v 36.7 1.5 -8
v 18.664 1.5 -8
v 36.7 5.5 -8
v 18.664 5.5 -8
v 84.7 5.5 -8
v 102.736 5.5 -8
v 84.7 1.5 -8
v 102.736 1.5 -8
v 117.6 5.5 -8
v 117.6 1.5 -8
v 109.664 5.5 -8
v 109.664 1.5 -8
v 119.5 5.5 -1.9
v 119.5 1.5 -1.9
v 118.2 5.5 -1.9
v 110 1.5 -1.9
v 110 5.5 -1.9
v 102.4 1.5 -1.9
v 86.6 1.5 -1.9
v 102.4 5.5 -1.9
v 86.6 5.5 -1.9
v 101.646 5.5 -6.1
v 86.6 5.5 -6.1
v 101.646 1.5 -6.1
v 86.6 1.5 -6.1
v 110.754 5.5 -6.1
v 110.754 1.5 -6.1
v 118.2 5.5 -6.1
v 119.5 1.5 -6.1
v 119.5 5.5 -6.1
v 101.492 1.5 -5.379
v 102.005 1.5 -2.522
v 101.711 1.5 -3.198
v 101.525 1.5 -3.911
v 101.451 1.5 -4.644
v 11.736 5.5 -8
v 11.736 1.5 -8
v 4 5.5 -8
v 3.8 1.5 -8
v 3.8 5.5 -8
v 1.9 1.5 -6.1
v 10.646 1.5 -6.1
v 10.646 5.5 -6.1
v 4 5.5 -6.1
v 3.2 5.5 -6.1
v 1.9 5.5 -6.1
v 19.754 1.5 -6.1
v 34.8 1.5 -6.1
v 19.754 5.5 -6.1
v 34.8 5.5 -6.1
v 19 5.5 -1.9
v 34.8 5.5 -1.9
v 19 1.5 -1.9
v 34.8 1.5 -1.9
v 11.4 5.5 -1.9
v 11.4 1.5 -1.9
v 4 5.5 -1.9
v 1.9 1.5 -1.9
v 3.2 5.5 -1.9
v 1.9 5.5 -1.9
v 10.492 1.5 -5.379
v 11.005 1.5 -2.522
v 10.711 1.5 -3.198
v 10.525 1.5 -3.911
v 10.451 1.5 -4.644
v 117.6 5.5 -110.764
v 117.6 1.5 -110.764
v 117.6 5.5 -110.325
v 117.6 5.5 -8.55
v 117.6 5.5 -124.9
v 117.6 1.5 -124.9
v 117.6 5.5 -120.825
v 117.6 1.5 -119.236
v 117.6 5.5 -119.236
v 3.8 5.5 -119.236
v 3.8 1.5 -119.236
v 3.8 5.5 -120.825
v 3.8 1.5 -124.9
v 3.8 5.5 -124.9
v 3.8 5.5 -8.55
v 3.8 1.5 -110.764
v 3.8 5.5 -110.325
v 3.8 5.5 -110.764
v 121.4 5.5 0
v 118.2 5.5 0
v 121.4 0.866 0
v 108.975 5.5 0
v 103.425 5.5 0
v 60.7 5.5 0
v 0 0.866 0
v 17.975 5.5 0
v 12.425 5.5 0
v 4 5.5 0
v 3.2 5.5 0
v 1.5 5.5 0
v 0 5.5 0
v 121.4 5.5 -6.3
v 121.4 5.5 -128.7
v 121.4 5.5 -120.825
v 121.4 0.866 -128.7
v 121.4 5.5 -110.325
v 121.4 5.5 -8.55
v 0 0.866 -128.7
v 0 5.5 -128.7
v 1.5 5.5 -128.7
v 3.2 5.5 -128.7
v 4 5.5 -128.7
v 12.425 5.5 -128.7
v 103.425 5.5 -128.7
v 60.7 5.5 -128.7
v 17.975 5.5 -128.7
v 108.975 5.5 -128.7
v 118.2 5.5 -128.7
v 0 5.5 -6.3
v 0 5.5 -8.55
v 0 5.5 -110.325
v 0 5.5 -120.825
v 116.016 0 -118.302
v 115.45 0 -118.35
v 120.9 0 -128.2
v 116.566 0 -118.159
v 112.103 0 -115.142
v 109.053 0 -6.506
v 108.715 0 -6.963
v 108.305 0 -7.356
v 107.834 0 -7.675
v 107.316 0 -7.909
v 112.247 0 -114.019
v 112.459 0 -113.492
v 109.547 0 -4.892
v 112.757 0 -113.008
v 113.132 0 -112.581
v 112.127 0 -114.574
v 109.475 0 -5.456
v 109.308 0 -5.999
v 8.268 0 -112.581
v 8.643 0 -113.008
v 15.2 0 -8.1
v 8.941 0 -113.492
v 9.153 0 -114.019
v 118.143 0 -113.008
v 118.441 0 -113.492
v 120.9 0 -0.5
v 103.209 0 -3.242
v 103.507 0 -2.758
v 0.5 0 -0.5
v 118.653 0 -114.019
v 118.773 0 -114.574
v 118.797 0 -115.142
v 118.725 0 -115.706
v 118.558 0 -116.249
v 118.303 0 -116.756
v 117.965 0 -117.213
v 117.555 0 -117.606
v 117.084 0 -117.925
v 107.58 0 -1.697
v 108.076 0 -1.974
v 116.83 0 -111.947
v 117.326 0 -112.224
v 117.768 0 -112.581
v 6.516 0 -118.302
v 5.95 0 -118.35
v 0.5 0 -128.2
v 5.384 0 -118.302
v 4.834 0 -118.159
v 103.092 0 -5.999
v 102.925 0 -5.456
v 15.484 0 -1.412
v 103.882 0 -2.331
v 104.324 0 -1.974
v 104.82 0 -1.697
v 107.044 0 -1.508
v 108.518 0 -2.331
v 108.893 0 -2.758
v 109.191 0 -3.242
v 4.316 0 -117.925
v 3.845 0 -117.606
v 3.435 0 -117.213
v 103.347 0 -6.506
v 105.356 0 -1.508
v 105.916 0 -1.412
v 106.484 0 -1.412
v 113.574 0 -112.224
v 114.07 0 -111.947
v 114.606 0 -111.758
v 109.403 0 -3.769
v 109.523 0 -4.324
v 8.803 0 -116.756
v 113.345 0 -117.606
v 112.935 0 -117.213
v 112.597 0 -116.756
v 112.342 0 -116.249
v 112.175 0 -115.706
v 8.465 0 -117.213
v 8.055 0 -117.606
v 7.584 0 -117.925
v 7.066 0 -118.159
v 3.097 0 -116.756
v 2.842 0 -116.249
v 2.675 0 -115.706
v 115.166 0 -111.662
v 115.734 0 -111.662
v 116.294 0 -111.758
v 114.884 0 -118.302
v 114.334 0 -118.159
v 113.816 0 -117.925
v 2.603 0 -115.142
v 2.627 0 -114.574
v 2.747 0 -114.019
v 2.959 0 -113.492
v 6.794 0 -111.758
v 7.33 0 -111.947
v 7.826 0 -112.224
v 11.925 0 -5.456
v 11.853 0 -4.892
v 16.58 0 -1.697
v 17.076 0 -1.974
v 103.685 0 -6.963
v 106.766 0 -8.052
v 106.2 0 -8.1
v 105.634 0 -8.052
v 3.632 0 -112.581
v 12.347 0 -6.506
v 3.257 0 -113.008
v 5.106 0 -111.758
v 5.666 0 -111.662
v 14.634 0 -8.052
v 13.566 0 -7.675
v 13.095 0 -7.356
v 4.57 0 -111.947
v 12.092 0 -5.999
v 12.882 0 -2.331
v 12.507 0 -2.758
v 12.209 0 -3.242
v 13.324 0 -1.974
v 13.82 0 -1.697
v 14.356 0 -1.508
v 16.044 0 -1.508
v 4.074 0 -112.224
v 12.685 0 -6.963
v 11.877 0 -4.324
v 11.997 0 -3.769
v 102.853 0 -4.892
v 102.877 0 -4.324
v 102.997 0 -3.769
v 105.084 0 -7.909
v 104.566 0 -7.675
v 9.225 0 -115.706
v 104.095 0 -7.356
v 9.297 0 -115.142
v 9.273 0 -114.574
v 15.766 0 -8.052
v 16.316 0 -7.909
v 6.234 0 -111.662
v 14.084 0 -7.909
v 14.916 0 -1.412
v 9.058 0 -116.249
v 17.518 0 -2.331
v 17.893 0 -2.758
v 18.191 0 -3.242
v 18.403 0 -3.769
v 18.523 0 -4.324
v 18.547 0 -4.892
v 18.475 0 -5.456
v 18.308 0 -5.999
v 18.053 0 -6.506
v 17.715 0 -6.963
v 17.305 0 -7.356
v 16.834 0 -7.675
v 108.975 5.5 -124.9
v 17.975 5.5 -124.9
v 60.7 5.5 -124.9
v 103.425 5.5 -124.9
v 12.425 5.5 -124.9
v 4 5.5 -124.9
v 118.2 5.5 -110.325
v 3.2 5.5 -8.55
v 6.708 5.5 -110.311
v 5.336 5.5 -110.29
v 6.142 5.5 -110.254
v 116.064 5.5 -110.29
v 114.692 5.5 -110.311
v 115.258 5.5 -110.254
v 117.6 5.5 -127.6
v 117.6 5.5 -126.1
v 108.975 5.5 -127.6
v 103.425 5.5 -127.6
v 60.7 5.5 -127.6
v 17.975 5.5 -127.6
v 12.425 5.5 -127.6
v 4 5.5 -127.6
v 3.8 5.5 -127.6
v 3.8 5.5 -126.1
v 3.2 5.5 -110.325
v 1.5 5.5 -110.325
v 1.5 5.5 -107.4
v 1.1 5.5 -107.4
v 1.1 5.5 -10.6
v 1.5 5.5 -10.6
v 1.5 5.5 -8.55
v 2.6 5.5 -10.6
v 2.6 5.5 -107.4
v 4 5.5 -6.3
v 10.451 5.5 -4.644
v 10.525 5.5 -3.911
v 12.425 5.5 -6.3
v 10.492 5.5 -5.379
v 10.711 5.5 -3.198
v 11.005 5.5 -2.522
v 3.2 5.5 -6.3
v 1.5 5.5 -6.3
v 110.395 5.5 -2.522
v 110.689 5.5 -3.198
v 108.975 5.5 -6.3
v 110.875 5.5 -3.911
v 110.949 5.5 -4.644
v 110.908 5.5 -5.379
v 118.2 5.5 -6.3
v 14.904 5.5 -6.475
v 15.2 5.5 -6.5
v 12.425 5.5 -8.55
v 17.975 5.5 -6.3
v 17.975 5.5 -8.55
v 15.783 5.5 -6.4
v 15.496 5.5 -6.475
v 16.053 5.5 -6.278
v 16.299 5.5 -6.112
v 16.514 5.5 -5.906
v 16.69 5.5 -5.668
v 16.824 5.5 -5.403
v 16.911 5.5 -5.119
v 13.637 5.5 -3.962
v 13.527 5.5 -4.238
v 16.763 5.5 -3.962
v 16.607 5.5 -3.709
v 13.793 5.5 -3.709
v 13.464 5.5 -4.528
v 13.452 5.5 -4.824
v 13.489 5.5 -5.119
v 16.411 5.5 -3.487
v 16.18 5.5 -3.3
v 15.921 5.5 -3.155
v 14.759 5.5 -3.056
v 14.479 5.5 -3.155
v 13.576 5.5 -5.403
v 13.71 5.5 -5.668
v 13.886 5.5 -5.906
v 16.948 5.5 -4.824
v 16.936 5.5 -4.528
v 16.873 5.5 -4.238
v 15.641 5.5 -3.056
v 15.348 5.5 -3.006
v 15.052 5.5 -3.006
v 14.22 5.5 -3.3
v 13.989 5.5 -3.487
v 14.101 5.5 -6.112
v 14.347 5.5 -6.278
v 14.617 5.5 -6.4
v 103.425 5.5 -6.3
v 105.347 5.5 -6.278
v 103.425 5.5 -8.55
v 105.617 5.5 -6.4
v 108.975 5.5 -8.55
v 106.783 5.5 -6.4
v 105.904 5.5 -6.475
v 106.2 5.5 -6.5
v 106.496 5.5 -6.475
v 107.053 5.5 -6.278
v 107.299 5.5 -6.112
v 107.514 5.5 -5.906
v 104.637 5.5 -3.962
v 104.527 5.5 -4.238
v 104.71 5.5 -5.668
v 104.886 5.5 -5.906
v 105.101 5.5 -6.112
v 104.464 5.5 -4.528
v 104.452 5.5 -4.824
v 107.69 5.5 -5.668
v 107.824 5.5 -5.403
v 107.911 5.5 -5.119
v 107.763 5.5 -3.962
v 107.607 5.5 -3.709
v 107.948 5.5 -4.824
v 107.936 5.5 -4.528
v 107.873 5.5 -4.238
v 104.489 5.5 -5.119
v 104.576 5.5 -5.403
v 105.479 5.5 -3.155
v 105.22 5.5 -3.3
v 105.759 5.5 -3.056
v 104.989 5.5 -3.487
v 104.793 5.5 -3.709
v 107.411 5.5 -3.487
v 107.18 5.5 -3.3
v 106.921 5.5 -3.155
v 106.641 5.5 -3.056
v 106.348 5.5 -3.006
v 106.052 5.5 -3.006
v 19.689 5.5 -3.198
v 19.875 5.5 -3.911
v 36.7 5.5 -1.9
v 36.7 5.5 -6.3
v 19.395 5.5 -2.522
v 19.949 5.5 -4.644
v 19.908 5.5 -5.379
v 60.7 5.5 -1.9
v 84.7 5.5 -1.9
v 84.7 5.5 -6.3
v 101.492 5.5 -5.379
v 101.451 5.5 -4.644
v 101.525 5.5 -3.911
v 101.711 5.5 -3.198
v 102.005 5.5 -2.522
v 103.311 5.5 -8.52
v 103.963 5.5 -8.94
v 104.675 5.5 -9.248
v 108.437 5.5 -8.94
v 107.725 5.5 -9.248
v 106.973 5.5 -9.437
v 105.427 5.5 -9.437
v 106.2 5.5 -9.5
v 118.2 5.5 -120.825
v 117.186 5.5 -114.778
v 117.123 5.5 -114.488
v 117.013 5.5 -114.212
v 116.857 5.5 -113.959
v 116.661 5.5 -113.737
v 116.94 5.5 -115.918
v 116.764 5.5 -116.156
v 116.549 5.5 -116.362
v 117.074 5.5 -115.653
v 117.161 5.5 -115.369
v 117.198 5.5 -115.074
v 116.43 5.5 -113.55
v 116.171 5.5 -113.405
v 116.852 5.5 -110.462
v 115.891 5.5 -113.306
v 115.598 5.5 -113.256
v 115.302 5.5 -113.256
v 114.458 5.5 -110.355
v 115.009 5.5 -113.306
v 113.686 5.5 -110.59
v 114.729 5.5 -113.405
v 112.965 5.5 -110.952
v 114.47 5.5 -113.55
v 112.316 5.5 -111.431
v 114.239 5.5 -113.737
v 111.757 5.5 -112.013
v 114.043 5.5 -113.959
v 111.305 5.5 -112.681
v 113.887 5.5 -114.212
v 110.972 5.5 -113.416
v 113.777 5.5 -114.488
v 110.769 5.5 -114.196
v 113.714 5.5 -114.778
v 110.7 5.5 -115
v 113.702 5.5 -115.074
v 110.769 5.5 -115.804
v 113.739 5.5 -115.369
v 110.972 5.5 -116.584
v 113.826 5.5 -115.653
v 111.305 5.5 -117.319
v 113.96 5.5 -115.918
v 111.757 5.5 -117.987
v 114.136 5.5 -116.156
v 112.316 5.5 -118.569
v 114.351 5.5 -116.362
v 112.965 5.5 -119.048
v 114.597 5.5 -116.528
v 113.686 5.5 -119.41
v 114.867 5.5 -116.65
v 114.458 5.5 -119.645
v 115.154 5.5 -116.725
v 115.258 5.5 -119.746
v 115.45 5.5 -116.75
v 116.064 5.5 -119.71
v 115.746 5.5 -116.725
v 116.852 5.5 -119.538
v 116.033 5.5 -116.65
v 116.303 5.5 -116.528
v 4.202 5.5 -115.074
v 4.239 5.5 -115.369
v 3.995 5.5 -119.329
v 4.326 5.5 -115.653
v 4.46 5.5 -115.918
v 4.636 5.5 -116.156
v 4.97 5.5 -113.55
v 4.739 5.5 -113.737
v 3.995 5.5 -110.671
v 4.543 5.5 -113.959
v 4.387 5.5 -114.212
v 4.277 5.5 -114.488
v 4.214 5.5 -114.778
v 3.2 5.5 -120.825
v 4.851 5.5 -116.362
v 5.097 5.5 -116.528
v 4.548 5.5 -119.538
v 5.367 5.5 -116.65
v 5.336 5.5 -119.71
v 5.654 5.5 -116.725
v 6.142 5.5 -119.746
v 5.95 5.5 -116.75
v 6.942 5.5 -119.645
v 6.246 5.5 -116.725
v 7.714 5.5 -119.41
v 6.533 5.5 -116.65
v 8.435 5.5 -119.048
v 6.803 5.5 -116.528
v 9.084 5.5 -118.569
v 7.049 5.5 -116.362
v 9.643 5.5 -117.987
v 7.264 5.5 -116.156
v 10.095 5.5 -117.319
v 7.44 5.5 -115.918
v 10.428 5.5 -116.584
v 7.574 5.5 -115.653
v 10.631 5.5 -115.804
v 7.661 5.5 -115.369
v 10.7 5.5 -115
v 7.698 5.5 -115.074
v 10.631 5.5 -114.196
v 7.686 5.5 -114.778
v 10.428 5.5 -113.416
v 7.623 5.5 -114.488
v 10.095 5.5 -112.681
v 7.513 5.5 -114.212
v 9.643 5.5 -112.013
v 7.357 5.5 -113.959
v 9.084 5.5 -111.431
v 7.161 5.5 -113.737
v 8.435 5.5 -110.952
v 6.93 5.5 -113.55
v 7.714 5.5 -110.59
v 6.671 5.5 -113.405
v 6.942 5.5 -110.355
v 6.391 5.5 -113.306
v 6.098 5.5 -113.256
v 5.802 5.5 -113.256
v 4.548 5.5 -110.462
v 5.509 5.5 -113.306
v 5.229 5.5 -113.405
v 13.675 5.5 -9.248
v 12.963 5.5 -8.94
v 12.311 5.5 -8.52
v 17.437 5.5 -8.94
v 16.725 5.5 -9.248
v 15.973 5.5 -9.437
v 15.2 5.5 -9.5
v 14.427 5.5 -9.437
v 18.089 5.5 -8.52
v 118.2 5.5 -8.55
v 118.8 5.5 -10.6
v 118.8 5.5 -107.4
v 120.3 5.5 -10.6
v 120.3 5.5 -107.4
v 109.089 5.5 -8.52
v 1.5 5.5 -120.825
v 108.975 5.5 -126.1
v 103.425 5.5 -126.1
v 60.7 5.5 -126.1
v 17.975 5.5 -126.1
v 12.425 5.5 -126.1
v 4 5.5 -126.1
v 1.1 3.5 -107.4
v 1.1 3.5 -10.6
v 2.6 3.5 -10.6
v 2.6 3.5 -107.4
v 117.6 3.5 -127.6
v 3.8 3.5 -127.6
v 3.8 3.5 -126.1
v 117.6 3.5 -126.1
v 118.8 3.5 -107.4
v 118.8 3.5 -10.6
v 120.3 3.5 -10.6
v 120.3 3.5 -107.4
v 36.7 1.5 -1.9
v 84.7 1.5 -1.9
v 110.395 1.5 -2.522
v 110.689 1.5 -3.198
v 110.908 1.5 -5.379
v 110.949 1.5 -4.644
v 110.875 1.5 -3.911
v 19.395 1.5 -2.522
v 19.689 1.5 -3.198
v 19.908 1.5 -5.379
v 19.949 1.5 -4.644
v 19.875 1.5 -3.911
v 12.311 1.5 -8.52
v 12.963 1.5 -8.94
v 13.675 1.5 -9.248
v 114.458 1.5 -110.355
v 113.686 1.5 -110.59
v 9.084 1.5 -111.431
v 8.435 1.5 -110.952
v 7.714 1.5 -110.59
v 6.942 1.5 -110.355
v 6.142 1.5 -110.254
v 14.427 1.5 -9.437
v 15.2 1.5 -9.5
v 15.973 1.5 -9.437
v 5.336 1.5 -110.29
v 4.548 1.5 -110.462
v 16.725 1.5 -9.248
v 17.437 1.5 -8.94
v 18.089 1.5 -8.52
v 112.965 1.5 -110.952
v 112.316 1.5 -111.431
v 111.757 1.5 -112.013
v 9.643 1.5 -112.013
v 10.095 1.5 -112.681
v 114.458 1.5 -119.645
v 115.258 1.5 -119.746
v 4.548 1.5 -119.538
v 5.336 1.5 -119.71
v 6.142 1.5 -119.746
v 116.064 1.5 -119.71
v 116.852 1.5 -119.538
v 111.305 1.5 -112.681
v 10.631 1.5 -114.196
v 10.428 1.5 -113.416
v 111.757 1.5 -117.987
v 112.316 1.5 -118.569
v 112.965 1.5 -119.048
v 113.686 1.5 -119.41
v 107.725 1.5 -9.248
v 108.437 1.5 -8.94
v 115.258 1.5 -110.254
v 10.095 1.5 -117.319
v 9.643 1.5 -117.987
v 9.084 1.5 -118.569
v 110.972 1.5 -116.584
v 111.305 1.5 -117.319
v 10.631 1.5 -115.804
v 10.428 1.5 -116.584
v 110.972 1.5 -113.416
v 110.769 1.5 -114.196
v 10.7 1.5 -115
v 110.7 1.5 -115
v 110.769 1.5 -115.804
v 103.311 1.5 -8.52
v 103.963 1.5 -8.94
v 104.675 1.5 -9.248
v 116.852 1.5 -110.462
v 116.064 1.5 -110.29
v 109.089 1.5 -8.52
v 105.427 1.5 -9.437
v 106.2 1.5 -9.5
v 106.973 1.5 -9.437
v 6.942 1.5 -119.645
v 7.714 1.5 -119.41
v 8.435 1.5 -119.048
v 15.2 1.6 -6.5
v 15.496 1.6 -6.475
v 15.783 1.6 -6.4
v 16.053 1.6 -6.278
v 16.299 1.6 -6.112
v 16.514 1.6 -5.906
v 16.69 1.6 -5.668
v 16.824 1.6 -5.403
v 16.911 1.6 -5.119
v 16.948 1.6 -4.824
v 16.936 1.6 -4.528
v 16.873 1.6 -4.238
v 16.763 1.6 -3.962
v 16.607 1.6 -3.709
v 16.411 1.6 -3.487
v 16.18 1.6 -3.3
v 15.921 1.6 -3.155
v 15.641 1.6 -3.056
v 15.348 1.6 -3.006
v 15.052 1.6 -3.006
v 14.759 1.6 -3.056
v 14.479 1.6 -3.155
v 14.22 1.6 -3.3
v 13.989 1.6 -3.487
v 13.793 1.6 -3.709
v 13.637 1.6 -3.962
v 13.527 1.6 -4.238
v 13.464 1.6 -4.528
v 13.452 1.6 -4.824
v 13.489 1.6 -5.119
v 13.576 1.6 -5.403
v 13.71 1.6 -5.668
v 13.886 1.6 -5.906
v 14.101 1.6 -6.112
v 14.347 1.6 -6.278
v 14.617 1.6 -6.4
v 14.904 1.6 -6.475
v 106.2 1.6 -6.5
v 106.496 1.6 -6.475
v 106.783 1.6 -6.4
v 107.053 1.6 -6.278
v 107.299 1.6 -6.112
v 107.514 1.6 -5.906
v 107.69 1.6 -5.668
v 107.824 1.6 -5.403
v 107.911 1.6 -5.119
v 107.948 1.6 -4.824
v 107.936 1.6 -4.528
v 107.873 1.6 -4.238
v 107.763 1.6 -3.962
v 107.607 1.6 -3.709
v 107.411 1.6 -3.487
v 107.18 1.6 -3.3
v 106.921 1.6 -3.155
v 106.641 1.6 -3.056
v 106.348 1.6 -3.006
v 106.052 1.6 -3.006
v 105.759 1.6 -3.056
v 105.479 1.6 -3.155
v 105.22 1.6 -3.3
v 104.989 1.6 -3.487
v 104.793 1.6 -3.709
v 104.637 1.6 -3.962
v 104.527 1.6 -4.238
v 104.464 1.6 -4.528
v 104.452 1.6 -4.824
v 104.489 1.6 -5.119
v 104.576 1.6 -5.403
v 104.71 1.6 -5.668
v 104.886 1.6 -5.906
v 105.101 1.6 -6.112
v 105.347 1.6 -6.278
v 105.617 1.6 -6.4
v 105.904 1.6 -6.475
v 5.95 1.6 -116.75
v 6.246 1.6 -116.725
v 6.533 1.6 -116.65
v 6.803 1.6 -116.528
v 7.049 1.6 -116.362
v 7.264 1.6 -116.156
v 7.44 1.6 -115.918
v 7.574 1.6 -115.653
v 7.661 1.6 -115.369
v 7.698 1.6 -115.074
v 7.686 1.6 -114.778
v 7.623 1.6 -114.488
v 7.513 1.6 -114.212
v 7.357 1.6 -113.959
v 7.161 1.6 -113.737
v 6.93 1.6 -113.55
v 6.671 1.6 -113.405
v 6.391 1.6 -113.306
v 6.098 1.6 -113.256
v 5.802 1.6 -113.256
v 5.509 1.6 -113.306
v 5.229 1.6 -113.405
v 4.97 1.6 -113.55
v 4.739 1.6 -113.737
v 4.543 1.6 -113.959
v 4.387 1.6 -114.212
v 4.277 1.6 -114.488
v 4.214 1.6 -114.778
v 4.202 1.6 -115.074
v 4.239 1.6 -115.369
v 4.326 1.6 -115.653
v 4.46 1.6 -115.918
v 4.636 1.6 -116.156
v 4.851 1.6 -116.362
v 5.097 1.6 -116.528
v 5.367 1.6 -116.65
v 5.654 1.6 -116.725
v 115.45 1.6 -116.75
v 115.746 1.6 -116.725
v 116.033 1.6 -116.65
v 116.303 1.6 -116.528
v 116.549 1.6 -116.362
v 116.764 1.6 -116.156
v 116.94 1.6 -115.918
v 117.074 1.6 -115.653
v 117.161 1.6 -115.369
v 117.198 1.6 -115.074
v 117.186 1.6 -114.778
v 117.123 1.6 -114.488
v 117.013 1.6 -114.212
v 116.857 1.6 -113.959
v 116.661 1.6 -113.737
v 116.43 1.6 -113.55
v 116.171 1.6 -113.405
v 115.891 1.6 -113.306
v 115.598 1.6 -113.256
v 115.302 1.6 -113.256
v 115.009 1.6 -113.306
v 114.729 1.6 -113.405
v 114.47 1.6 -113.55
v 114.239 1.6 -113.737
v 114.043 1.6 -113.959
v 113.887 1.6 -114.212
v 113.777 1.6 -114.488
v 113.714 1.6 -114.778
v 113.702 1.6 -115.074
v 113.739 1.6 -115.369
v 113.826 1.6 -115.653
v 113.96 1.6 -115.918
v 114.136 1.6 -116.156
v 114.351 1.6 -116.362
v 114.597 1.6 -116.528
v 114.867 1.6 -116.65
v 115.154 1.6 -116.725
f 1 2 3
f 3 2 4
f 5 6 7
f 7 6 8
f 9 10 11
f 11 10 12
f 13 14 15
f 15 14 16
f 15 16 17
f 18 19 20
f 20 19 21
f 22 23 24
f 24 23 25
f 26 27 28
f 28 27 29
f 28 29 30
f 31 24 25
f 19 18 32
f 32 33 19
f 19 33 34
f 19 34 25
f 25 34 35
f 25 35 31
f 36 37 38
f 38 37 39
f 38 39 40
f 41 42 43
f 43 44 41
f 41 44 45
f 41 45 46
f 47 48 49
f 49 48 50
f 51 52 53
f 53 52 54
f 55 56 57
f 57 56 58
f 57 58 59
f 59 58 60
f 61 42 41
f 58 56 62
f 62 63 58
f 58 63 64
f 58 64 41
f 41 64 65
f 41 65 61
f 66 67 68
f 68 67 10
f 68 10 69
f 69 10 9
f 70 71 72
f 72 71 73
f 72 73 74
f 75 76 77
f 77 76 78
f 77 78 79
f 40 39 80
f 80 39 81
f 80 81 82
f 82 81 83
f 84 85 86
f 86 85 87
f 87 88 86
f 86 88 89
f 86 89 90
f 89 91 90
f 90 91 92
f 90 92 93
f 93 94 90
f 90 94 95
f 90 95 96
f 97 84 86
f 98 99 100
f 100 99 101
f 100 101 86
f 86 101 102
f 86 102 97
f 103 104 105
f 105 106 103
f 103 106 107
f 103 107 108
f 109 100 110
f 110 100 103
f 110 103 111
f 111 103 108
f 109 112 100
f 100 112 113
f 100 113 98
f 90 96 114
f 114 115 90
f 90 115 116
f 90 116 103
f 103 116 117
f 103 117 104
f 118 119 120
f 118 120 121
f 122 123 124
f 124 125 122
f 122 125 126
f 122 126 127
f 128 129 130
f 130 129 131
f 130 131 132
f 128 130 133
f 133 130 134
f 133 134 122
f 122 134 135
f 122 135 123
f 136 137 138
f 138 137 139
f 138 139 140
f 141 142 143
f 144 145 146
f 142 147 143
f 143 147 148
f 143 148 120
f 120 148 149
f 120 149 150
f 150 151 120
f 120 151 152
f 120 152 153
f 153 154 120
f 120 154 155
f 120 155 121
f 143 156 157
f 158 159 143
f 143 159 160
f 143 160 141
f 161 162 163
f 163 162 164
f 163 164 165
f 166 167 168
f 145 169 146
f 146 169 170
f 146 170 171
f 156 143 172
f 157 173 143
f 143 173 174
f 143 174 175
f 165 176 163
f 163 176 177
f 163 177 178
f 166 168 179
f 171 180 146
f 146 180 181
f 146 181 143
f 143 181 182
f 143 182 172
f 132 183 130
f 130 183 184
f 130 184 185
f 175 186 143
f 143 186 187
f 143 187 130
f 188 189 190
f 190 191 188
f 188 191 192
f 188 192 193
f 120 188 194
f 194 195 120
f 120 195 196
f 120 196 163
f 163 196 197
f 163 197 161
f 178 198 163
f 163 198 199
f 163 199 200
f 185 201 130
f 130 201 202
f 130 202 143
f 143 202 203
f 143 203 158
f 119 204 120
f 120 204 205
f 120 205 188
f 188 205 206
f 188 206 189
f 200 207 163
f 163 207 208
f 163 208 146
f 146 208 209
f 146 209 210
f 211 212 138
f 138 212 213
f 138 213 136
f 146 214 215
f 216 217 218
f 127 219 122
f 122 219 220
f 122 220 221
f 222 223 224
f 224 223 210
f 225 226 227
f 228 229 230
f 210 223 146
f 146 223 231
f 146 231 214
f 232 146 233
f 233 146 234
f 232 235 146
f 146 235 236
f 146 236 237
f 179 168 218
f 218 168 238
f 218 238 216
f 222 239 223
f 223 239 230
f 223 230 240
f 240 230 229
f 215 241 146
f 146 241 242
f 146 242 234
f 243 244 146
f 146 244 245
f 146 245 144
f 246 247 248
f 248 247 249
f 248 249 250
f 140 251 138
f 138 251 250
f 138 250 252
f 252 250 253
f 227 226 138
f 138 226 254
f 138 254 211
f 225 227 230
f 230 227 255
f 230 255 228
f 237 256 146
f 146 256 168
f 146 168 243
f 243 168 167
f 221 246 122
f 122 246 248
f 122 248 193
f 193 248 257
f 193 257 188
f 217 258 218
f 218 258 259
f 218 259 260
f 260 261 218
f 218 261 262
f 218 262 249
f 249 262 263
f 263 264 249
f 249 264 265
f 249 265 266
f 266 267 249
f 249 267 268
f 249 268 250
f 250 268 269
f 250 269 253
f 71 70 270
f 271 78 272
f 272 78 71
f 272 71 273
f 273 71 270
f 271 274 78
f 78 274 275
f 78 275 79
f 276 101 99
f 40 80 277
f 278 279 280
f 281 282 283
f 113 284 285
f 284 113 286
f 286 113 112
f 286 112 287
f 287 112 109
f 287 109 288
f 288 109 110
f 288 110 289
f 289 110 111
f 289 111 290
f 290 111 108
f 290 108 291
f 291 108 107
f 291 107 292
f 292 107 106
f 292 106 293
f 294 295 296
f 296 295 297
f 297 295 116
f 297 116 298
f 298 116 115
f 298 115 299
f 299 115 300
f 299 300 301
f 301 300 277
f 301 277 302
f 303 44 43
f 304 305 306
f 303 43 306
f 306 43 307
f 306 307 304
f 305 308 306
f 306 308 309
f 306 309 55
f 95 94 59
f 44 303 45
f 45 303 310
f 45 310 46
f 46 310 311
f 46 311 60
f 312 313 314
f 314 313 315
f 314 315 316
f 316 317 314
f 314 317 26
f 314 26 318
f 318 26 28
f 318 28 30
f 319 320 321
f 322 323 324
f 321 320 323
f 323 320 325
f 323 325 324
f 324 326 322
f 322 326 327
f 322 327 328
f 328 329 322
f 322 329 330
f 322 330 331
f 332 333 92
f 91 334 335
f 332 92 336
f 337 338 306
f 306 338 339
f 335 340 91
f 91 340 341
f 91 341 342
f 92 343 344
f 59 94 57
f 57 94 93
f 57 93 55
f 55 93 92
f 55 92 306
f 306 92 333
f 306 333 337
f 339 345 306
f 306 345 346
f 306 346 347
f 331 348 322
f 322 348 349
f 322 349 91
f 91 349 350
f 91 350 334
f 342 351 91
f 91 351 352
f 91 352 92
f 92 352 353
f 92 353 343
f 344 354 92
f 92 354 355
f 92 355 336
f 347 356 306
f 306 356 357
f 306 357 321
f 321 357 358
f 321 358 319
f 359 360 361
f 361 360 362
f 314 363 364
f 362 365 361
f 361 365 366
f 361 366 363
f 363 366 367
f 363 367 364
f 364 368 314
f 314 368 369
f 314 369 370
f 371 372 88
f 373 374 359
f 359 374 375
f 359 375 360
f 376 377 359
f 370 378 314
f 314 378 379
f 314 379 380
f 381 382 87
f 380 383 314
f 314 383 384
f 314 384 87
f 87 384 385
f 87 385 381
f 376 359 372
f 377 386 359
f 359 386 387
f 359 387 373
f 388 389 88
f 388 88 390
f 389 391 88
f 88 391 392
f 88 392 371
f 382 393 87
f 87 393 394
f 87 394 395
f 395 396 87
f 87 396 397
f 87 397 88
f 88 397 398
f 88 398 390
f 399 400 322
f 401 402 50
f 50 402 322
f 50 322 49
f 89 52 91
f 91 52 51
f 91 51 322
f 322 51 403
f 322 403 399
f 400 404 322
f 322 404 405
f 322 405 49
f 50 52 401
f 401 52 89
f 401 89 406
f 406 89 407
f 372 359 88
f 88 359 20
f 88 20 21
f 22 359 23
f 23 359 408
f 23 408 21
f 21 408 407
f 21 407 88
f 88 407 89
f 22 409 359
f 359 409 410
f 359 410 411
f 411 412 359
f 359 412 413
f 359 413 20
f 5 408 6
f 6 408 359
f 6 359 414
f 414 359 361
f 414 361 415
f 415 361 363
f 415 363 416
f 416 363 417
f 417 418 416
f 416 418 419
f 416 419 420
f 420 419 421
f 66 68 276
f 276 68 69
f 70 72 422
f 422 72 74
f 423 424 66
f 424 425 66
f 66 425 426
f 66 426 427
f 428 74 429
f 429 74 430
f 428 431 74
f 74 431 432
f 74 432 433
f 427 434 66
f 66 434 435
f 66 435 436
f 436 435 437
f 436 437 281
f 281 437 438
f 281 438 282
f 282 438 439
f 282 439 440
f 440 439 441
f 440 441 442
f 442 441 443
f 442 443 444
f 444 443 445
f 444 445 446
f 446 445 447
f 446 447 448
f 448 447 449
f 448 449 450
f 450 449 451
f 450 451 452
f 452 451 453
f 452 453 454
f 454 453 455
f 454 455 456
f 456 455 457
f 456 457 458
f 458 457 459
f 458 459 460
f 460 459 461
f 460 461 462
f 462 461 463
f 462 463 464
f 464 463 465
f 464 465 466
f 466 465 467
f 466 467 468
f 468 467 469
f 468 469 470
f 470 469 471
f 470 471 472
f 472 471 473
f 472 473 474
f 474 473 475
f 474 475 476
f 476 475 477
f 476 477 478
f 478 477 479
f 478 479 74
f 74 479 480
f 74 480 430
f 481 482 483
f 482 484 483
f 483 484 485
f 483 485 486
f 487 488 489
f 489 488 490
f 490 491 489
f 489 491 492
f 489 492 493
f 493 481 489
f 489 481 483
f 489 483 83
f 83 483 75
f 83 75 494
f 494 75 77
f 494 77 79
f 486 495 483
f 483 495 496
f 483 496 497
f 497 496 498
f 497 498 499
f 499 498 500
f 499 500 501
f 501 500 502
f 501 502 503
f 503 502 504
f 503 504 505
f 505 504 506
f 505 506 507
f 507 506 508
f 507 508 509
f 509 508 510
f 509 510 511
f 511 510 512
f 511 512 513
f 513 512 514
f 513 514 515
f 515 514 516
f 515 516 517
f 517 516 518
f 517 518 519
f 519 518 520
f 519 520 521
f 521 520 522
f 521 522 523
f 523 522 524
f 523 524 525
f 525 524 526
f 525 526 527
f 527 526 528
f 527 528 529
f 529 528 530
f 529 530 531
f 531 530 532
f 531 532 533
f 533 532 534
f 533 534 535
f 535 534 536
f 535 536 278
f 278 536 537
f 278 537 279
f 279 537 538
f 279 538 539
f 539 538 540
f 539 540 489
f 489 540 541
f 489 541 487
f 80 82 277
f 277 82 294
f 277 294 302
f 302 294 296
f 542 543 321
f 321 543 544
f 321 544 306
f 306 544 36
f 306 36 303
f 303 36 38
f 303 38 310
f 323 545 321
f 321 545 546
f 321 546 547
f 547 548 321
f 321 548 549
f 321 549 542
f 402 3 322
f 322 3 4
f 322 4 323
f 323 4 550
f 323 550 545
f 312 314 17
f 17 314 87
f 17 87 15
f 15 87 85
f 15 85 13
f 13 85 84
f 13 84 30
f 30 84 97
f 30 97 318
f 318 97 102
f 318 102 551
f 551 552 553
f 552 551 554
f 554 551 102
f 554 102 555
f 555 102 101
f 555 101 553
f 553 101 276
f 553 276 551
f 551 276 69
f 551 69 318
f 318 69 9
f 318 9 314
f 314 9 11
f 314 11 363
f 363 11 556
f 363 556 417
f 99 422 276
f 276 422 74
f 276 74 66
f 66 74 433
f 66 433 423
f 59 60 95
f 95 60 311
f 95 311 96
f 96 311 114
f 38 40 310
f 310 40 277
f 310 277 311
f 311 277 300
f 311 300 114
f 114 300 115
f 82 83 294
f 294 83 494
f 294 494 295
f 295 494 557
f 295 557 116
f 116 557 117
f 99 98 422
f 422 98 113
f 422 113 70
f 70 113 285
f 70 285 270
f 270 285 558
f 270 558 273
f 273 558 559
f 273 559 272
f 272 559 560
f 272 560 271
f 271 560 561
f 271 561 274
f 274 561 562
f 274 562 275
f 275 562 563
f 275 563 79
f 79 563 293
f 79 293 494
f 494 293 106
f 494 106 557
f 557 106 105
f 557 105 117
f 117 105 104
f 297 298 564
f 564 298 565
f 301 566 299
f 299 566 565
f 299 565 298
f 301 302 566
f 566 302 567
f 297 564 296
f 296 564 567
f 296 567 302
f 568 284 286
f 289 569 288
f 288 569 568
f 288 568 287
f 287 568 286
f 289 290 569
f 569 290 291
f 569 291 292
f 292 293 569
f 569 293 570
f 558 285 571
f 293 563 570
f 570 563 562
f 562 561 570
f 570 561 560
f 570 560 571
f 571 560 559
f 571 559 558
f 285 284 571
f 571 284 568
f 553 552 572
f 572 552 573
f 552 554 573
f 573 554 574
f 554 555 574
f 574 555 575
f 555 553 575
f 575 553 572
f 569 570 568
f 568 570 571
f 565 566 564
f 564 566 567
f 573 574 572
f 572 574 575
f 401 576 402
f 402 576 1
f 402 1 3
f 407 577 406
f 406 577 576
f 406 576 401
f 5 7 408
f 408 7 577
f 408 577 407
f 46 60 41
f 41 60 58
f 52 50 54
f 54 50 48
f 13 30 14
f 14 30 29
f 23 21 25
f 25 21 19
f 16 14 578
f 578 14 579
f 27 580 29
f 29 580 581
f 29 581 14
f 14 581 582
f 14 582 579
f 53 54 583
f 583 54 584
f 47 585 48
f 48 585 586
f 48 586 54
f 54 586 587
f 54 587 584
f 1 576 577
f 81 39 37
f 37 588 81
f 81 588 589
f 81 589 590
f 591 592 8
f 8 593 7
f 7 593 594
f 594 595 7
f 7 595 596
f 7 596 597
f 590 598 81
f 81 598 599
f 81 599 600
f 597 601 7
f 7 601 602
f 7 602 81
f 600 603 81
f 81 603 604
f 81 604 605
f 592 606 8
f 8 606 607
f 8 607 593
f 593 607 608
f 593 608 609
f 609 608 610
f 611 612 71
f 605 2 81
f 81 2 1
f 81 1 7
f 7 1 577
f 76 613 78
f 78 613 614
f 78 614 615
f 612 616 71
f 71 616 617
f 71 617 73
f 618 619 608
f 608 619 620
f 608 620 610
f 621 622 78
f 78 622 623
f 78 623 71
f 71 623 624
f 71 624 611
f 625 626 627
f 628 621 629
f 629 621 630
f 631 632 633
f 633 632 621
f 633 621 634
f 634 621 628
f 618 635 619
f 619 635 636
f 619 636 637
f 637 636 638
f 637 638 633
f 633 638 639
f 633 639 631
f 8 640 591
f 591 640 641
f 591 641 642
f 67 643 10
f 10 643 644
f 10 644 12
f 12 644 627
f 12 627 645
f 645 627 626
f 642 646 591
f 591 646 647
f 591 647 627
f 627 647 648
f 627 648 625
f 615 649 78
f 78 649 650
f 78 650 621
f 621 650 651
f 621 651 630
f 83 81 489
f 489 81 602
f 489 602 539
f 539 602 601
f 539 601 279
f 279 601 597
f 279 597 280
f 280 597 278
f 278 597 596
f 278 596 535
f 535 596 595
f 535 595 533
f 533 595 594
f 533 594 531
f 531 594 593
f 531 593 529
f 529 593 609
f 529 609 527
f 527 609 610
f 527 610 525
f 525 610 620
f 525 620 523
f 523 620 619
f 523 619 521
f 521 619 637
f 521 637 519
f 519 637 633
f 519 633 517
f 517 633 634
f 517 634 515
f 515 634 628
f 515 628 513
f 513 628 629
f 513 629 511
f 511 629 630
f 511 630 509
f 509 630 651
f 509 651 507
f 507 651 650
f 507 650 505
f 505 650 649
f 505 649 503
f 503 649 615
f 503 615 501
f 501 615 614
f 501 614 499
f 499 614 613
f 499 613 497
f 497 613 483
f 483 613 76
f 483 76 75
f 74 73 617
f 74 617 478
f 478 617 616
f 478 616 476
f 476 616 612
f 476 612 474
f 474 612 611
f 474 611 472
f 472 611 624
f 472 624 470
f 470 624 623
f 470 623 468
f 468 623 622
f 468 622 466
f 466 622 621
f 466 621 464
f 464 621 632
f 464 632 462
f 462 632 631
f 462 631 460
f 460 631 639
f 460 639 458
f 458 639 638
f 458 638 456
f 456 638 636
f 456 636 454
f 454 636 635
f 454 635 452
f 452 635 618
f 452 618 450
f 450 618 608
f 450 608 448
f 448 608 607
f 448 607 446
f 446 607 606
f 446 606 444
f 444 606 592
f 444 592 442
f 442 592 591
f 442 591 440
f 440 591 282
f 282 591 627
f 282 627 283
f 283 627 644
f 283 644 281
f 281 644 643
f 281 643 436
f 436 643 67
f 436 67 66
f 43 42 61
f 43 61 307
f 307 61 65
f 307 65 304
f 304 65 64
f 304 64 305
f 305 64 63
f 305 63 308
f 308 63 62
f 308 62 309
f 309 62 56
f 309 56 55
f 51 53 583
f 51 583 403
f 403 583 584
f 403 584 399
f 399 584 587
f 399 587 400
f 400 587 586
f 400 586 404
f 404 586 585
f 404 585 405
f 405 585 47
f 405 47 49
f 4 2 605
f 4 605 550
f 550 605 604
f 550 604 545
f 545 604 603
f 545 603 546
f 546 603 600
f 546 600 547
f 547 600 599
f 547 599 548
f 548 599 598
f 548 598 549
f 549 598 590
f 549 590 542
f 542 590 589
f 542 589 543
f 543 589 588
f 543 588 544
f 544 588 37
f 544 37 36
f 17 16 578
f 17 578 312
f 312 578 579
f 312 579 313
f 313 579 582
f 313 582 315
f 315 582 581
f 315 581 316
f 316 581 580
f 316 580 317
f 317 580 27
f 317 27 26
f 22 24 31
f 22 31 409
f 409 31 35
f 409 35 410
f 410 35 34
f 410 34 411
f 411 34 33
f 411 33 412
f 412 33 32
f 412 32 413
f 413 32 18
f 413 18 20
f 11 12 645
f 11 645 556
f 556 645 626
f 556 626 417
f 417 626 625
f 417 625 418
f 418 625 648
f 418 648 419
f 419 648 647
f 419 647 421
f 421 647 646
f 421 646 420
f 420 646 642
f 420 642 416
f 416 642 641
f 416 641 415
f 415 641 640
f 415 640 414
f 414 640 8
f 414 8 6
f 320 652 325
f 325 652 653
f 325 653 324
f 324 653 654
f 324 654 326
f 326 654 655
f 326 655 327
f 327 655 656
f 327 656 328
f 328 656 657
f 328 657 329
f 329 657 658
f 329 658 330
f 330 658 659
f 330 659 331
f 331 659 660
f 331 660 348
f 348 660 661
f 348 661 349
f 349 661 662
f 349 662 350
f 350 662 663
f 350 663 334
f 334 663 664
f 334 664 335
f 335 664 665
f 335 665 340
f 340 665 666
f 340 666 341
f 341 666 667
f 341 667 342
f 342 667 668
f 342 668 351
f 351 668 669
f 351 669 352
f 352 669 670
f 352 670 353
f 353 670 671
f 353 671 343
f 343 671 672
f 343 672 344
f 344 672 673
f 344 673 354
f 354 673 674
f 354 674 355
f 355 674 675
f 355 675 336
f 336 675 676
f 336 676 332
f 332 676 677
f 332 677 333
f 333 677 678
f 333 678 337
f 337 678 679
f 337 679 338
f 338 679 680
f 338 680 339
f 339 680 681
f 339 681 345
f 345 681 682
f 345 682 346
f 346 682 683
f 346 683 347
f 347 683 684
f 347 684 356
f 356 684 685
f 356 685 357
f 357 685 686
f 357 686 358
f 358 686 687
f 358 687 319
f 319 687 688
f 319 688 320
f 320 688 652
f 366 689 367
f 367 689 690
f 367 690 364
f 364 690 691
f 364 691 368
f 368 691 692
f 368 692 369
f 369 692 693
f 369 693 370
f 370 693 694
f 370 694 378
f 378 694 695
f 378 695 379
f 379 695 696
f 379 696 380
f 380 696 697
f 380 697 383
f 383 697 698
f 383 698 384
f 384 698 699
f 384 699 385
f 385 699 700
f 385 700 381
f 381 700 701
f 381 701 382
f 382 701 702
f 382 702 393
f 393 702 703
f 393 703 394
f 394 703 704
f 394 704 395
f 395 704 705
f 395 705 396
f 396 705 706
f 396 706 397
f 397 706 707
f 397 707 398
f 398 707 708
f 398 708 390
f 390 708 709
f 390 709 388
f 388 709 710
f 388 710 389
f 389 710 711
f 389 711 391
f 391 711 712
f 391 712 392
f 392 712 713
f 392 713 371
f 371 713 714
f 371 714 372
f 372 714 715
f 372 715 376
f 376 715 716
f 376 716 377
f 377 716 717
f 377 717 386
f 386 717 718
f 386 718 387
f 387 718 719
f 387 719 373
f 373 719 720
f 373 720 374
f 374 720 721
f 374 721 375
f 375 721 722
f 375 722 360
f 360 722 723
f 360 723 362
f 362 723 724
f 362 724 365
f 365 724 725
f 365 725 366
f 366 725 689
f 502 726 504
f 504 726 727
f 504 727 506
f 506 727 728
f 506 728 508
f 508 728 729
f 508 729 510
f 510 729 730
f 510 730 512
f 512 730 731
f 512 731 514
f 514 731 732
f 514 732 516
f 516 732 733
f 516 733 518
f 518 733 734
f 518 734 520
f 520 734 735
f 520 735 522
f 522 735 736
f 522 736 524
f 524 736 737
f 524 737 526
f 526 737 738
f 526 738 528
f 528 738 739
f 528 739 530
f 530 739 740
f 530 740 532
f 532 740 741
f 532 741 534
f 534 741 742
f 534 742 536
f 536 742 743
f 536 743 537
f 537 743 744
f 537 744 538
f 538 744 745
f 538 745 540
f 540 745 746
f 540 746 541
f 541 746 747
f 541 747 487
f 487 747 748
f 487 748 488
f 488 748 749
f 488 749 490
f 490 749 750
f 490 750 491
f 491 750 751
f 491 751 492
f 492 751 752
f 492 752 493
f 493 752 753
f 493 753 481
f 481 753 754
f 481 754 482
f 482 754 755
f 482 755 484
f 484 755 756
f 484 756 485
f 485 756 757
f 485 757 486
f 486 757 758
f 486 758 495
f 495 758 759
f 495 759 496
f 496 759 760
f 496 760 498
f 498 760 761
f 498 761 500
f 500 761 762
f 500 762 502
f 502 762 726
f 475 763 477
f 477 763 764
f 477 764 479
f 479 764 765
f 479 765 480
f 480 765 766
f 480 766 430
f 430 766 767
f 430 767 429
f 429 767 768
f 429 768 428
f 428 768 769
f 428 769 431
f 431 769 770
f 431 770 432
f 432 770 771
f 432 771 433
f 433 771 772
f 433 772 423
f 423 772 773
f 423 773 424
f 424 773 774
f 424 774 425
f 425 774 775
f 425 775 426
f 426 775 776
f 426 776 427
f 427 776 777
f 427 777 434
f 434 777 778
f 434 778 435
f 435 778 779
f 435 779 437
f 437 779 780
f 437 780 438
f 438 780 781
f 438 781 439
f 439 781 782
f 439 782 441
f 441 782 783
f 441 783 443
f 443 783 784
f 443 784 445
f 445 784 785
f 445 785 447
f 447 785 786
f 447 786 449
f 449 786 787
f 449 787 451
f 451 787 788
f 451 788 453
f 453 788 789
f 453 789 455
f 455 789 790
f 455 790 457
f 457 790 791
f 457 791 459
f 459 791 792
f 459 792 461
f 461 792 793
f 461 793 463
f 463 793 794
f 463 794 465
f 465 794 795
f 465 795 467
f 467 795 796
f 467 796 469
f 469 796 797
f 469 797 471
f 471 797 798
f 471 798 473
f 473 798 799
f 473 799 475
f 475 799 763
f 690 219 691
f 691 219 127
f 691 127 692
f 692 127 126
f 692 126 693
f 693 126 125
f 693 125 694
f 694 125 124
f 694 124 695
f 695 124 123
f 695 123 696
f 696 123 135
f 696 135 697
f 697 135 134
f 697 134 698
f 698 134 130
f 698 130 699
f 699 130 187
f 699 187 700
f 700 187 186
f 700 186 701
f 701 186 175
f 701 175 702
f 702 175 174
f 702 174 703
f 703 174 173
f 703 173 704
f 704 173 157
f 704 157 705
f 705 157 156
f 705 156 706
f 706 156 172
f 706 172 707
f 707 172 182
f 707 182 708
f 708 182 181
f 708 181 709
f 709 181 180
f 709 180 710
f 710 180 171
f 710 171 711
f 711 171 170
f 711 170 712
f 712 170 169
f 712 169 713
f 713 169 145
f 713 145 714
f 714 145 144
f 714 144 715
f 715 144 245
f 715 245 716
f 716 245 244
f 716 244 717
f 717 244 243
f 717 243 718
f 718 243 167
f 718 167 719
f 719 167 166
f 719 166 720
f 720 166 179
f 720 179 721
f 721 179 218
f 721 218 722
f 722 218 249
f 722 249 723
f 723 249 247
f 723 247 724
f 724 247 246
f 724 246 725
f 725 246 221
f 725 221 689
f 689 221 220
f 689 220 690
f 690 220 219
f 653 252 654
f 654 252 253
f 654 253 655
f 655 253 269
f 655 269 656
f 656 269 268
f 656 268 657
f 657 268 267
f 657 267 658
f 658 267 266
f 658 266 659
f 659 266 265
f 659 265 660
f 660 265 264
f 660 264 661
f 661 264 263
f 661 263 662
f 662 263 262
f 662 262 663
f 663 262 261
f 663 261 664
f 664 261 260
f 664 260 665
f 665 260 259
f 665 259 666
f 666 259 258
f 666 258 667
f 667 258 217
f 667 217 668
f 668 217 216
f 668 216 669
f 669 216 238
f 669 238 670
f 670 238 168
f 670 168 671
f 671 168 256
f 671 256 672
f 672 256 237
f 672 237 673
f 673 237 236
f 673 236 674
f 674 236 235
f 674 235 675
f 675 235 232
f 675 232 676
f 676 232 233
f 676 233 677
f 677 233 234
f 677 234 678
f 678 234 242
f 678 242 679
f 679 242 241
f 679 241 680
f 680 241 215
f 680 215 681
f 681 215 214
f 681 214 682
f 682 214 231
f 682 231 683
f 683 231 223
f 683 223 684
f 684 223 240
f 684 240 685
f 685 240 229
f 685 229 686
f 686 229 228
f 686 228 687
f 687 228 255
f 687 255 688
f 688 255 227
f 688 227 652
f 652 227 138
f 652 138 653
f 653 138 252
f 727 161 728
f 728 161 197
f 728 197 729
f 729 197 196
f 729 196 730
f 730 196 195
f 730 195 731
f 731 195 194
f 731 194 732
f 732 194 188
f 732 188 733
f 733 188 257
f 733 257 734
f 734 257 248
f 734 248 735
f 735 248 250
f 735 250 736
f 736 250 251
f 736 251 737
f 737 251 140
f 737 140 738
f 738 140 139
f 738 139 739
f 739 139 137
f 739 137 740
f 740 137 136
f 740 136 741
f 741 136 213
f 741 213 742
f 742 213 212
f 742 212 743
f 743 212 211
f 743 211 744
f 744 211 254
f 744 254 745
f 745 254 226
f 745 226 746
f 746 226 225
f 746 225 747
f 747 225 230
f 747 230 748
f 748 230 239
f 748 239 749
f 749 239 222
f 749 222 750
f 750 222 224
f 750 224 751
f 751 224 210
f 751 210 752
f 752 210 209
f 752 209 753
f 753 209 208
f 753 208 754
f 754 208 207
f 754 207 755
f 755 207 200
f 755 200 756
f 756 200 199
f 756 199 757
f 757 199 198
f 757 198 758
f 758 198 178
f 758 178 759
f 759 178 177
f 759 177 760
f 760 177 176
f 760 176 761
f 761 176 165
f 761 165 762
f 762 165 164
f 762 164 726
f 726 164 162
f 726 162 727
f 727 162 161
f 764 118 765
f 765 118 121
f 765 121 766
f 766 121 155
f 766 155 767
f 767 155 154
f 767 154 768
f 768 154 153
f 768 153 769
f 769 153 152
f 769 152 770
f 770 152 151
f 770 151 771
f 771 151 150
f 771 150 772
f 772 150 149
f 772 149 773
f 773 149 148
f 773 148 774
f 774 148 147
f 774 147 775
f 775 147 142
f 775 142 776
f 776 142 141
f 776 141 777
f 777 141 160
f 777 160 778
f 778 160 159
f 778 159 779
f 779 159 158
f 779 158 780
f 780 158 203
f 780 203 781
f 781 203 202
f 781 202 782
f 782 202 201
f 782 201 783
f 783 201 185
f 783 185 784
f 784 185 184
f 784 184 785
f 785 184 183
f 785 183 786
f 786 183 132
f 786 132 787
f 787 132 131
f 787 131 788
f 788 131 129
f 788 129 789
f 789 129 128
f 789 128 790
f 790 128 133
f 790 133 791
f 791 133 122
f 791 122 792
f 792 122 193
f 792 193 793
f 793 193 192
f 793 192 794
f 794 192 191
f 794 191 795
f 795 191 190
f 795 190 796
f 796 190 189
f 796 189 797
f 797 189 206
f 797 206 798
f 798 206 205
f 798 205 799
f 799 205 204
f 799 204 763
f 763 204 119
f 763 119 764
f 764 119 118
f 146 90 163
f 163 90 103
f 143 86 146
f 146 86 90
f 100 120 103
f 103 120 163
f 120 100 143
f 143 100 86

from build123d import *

# Parameters (mm, degrees)
SKETCH_1_W          = 121.4
SKETCH_1_H          = 128.7
EXTRUDE_1_DEPTH     = 1.5
EXTRUDE_2_DEPTH     = 2
SKETCH_3_W          = 1.5
SKETCH_3_H          = 96.8
SKETCH_3_W_2        = 113.8
SKETCH_3_H_2        = 1.5
EXTRUDE_3_DEPTH     = 2
SKETCH_5_W          = 121.4
SKETCH_5_H          = 8
SKETCH_5_W_2        = 32.9
SKETCH_5_H_2        = 4.2
SKETCH_5_W_3        = 48
EXTRUDE_5_DEPTH     = 4
SKETCH_7_R          = 4.75
EXTRUDE_10_DEPTH    = 4
SKETCH_8_R          = 1.75
CUT_EXTRUDE_3_DEPTH = 5.5
CHAMFER_1_SIZE      = 1.6
SKETCH_10_W         = 48
SKETCH_10_H         = 6.1
CUT_EXTRUDE_4_DEPTH = 4
CHAMFER_2_SIZE      = 0.5
CHAMFER_2_SIZE2     = 0.866025404


with BuildPart() as part:
    # Эскиз1 → Бобышка-Вытянуть1 (new body)
    with BuildSketch(Plane(origin=(0, 0, 0), x_dir=(1, 0, 0), z_dir=(0, 1, 0))):
        with Locations((60.7, 64.35)):
            Rectangle(SKETCH_1_W, SKETCH_1_H)
    extrude(amount=EXTRUDE_1_DEPTH)

    # Эскиз2 → Бобышка-Вытянуть2 (add)
    with BuildSketch(Plane(origin=(0, 1.5, 0), x_dir=(1, 0, 0), z_dir=(0, 1, 0))):
        Polygon((0, 8), (0, 128.7), (121.4, 128.7), (121.4, 8), (117.6, 8), (117.6, 124.9), (3.8, 124.9), (3.8, 8), align=None)
    extrude(amount=EXTRUDE_2_DEPTH)

    # Эскиз3 → Бобышка-Вытянуть3 (add)
    with BuildSketch(Plane(origin=(0, 3.5, 0), x_dir=(1, 0, 0), z_dir=(0, 1, 0))):
        Polygon((0, 8), (3.8, 8), (3.8, 124.9), (117.6, 124.9), (117.6, 8), (121.4, 8), (121.4, 128.7), (0, 128.7), align=None)
        with Locations((1.85, 59)):
            Rectangle(SKETCH_3_W, SKETCH_3_H, mode=Mode.SUBTRACT)
        with Locations((60.7, 126.85)):
            Rectangle(SKETCH_3_W_2, SKETCH_3_H_2, mode=Mode.SUBTRACT)
        with Locations((119.55, 59)):
            Rectangle(SKETCH_3_W, SKETCH_3_H, mode=Mode.SUBTRACT)
    extrude(amount=EXTRUDE_3_DEPTH)

    # Эскиз5 → Бобышка-Вытянуть5 (add)
    with BuildSketch(Plane(origin=(0, 1.5, 0), x_dir=(1, 0, 0), z_dir=(0, 1, 0))):
        with Locations((60.7, 4)):
            Rectangle(SKETCH_5_W, SKETCH_5_H)
        with Locations((18.35, 4)):
            Rectangle(SKETCH_5_W_2, SKETCH_5_H_2, mode=Mode.SUBTRACT)
        with Locations((103.05, 4)):
            Rectangle(SKETCH_5_W_2, SKETCH_5_H_2, mode=Mode.SUBTRACT)
        with Locations((60.7, 4)):
            Rectangle(SKETCH_5_W_3, SKETCH_5_H_2, mode=Mode.SUBTRACT)
    extrude(amount=EXTRUDE_5_DEPTH)

    # Эскиз7 → Бобышка-Вытянуть10 (add)
    with BuildSketch(Plane(origin=(0, 1.5, 0), x_dir=(1, 0, 0), z_dir=(0, 1, 0))):
        with Locations((5.95, 115)):
            Circle(SKETCH_7_R)
        with Locations((115.45, 115)):
            Circle(SKETCH_7_R)
        with Locations((15.2, 4.75)):
            Circle(SKETCH_7_R)
        with Locations((106.2, 4.75)):
            Circle(SKETCH_7_R)
    extrude(amount=EXTRUDE_10_DEPTH)

    # Эскиз8 → Вырез-Вытянуть3 (cut)
    with BuildSketch(Plane.XZ):
        with Locations(Location((15.2, -4.75, 0), (0, 0, 270))):
            Circle(SKETCH_8_R)
        with Locations(Location((106.2, -4.75, 0), (0, 0, 270))):
            Circle(SKETCH_8_R)
        with Locations(Location((5.95, -115, 0), (0, 0, 270))):
            Circle(SKETCH_8_R)
        with Locations(Location((115.45, -115, 0), (0, 0, 270))):
            Circle(SKETCH_8_R)
    extrude(amount=-CUT_EXTRUDE_3_DEPTH, mode=Mode.SUBTRACT)

    # Фаска1
    chamfer_1_edges = [part.edges().sort_by_distance(p)[0] for p in [
        (115.45, 0, -113.25),
        (5.95, 0, -113.25),
        (106.2, 0, -3),
        (15.2, 0, -3),
    ]]
    chamfer(chamfer_1_edges, length=CHAMFER_1_SIZE)

    # Эскиз10 → Вырез-Вытянуть4 (cut)
    with BuildSketch(Plane(origin=(0, 5.5, 0), x_dir=(1, 0, 0), z_dir=(0, 1, 0))):
        with Locations((60.7, 4.95)):
            Rectangle(SKETCH_10_W, SKETCH_10_H)
    extrude(amount=-CUT_EXTRUDE_4_DEPTH, mode=Mode.SUBTRACT)

    # Фаска2
    chamfer_2_edges = [part.edges().sort_by_distance(p)[0] for p in [
        (0, 0, -64.35),
        (60.7, 0, -128.7),
        (121.4, 0, -64.35),
        (60.7, 0, 0),
    ]]
    chamfer_2_side = [part.faces().sort_by_distance(p)[0] for p in [
        (60.7, 0, -64.390759898),
    ]]
    chamfer(chamfer_2_edges, length=CHAMFER_2_SIZE, length2=CHAMFER_2_SIZE2, reference=chamfer_2_side[0])


solid = part.part
